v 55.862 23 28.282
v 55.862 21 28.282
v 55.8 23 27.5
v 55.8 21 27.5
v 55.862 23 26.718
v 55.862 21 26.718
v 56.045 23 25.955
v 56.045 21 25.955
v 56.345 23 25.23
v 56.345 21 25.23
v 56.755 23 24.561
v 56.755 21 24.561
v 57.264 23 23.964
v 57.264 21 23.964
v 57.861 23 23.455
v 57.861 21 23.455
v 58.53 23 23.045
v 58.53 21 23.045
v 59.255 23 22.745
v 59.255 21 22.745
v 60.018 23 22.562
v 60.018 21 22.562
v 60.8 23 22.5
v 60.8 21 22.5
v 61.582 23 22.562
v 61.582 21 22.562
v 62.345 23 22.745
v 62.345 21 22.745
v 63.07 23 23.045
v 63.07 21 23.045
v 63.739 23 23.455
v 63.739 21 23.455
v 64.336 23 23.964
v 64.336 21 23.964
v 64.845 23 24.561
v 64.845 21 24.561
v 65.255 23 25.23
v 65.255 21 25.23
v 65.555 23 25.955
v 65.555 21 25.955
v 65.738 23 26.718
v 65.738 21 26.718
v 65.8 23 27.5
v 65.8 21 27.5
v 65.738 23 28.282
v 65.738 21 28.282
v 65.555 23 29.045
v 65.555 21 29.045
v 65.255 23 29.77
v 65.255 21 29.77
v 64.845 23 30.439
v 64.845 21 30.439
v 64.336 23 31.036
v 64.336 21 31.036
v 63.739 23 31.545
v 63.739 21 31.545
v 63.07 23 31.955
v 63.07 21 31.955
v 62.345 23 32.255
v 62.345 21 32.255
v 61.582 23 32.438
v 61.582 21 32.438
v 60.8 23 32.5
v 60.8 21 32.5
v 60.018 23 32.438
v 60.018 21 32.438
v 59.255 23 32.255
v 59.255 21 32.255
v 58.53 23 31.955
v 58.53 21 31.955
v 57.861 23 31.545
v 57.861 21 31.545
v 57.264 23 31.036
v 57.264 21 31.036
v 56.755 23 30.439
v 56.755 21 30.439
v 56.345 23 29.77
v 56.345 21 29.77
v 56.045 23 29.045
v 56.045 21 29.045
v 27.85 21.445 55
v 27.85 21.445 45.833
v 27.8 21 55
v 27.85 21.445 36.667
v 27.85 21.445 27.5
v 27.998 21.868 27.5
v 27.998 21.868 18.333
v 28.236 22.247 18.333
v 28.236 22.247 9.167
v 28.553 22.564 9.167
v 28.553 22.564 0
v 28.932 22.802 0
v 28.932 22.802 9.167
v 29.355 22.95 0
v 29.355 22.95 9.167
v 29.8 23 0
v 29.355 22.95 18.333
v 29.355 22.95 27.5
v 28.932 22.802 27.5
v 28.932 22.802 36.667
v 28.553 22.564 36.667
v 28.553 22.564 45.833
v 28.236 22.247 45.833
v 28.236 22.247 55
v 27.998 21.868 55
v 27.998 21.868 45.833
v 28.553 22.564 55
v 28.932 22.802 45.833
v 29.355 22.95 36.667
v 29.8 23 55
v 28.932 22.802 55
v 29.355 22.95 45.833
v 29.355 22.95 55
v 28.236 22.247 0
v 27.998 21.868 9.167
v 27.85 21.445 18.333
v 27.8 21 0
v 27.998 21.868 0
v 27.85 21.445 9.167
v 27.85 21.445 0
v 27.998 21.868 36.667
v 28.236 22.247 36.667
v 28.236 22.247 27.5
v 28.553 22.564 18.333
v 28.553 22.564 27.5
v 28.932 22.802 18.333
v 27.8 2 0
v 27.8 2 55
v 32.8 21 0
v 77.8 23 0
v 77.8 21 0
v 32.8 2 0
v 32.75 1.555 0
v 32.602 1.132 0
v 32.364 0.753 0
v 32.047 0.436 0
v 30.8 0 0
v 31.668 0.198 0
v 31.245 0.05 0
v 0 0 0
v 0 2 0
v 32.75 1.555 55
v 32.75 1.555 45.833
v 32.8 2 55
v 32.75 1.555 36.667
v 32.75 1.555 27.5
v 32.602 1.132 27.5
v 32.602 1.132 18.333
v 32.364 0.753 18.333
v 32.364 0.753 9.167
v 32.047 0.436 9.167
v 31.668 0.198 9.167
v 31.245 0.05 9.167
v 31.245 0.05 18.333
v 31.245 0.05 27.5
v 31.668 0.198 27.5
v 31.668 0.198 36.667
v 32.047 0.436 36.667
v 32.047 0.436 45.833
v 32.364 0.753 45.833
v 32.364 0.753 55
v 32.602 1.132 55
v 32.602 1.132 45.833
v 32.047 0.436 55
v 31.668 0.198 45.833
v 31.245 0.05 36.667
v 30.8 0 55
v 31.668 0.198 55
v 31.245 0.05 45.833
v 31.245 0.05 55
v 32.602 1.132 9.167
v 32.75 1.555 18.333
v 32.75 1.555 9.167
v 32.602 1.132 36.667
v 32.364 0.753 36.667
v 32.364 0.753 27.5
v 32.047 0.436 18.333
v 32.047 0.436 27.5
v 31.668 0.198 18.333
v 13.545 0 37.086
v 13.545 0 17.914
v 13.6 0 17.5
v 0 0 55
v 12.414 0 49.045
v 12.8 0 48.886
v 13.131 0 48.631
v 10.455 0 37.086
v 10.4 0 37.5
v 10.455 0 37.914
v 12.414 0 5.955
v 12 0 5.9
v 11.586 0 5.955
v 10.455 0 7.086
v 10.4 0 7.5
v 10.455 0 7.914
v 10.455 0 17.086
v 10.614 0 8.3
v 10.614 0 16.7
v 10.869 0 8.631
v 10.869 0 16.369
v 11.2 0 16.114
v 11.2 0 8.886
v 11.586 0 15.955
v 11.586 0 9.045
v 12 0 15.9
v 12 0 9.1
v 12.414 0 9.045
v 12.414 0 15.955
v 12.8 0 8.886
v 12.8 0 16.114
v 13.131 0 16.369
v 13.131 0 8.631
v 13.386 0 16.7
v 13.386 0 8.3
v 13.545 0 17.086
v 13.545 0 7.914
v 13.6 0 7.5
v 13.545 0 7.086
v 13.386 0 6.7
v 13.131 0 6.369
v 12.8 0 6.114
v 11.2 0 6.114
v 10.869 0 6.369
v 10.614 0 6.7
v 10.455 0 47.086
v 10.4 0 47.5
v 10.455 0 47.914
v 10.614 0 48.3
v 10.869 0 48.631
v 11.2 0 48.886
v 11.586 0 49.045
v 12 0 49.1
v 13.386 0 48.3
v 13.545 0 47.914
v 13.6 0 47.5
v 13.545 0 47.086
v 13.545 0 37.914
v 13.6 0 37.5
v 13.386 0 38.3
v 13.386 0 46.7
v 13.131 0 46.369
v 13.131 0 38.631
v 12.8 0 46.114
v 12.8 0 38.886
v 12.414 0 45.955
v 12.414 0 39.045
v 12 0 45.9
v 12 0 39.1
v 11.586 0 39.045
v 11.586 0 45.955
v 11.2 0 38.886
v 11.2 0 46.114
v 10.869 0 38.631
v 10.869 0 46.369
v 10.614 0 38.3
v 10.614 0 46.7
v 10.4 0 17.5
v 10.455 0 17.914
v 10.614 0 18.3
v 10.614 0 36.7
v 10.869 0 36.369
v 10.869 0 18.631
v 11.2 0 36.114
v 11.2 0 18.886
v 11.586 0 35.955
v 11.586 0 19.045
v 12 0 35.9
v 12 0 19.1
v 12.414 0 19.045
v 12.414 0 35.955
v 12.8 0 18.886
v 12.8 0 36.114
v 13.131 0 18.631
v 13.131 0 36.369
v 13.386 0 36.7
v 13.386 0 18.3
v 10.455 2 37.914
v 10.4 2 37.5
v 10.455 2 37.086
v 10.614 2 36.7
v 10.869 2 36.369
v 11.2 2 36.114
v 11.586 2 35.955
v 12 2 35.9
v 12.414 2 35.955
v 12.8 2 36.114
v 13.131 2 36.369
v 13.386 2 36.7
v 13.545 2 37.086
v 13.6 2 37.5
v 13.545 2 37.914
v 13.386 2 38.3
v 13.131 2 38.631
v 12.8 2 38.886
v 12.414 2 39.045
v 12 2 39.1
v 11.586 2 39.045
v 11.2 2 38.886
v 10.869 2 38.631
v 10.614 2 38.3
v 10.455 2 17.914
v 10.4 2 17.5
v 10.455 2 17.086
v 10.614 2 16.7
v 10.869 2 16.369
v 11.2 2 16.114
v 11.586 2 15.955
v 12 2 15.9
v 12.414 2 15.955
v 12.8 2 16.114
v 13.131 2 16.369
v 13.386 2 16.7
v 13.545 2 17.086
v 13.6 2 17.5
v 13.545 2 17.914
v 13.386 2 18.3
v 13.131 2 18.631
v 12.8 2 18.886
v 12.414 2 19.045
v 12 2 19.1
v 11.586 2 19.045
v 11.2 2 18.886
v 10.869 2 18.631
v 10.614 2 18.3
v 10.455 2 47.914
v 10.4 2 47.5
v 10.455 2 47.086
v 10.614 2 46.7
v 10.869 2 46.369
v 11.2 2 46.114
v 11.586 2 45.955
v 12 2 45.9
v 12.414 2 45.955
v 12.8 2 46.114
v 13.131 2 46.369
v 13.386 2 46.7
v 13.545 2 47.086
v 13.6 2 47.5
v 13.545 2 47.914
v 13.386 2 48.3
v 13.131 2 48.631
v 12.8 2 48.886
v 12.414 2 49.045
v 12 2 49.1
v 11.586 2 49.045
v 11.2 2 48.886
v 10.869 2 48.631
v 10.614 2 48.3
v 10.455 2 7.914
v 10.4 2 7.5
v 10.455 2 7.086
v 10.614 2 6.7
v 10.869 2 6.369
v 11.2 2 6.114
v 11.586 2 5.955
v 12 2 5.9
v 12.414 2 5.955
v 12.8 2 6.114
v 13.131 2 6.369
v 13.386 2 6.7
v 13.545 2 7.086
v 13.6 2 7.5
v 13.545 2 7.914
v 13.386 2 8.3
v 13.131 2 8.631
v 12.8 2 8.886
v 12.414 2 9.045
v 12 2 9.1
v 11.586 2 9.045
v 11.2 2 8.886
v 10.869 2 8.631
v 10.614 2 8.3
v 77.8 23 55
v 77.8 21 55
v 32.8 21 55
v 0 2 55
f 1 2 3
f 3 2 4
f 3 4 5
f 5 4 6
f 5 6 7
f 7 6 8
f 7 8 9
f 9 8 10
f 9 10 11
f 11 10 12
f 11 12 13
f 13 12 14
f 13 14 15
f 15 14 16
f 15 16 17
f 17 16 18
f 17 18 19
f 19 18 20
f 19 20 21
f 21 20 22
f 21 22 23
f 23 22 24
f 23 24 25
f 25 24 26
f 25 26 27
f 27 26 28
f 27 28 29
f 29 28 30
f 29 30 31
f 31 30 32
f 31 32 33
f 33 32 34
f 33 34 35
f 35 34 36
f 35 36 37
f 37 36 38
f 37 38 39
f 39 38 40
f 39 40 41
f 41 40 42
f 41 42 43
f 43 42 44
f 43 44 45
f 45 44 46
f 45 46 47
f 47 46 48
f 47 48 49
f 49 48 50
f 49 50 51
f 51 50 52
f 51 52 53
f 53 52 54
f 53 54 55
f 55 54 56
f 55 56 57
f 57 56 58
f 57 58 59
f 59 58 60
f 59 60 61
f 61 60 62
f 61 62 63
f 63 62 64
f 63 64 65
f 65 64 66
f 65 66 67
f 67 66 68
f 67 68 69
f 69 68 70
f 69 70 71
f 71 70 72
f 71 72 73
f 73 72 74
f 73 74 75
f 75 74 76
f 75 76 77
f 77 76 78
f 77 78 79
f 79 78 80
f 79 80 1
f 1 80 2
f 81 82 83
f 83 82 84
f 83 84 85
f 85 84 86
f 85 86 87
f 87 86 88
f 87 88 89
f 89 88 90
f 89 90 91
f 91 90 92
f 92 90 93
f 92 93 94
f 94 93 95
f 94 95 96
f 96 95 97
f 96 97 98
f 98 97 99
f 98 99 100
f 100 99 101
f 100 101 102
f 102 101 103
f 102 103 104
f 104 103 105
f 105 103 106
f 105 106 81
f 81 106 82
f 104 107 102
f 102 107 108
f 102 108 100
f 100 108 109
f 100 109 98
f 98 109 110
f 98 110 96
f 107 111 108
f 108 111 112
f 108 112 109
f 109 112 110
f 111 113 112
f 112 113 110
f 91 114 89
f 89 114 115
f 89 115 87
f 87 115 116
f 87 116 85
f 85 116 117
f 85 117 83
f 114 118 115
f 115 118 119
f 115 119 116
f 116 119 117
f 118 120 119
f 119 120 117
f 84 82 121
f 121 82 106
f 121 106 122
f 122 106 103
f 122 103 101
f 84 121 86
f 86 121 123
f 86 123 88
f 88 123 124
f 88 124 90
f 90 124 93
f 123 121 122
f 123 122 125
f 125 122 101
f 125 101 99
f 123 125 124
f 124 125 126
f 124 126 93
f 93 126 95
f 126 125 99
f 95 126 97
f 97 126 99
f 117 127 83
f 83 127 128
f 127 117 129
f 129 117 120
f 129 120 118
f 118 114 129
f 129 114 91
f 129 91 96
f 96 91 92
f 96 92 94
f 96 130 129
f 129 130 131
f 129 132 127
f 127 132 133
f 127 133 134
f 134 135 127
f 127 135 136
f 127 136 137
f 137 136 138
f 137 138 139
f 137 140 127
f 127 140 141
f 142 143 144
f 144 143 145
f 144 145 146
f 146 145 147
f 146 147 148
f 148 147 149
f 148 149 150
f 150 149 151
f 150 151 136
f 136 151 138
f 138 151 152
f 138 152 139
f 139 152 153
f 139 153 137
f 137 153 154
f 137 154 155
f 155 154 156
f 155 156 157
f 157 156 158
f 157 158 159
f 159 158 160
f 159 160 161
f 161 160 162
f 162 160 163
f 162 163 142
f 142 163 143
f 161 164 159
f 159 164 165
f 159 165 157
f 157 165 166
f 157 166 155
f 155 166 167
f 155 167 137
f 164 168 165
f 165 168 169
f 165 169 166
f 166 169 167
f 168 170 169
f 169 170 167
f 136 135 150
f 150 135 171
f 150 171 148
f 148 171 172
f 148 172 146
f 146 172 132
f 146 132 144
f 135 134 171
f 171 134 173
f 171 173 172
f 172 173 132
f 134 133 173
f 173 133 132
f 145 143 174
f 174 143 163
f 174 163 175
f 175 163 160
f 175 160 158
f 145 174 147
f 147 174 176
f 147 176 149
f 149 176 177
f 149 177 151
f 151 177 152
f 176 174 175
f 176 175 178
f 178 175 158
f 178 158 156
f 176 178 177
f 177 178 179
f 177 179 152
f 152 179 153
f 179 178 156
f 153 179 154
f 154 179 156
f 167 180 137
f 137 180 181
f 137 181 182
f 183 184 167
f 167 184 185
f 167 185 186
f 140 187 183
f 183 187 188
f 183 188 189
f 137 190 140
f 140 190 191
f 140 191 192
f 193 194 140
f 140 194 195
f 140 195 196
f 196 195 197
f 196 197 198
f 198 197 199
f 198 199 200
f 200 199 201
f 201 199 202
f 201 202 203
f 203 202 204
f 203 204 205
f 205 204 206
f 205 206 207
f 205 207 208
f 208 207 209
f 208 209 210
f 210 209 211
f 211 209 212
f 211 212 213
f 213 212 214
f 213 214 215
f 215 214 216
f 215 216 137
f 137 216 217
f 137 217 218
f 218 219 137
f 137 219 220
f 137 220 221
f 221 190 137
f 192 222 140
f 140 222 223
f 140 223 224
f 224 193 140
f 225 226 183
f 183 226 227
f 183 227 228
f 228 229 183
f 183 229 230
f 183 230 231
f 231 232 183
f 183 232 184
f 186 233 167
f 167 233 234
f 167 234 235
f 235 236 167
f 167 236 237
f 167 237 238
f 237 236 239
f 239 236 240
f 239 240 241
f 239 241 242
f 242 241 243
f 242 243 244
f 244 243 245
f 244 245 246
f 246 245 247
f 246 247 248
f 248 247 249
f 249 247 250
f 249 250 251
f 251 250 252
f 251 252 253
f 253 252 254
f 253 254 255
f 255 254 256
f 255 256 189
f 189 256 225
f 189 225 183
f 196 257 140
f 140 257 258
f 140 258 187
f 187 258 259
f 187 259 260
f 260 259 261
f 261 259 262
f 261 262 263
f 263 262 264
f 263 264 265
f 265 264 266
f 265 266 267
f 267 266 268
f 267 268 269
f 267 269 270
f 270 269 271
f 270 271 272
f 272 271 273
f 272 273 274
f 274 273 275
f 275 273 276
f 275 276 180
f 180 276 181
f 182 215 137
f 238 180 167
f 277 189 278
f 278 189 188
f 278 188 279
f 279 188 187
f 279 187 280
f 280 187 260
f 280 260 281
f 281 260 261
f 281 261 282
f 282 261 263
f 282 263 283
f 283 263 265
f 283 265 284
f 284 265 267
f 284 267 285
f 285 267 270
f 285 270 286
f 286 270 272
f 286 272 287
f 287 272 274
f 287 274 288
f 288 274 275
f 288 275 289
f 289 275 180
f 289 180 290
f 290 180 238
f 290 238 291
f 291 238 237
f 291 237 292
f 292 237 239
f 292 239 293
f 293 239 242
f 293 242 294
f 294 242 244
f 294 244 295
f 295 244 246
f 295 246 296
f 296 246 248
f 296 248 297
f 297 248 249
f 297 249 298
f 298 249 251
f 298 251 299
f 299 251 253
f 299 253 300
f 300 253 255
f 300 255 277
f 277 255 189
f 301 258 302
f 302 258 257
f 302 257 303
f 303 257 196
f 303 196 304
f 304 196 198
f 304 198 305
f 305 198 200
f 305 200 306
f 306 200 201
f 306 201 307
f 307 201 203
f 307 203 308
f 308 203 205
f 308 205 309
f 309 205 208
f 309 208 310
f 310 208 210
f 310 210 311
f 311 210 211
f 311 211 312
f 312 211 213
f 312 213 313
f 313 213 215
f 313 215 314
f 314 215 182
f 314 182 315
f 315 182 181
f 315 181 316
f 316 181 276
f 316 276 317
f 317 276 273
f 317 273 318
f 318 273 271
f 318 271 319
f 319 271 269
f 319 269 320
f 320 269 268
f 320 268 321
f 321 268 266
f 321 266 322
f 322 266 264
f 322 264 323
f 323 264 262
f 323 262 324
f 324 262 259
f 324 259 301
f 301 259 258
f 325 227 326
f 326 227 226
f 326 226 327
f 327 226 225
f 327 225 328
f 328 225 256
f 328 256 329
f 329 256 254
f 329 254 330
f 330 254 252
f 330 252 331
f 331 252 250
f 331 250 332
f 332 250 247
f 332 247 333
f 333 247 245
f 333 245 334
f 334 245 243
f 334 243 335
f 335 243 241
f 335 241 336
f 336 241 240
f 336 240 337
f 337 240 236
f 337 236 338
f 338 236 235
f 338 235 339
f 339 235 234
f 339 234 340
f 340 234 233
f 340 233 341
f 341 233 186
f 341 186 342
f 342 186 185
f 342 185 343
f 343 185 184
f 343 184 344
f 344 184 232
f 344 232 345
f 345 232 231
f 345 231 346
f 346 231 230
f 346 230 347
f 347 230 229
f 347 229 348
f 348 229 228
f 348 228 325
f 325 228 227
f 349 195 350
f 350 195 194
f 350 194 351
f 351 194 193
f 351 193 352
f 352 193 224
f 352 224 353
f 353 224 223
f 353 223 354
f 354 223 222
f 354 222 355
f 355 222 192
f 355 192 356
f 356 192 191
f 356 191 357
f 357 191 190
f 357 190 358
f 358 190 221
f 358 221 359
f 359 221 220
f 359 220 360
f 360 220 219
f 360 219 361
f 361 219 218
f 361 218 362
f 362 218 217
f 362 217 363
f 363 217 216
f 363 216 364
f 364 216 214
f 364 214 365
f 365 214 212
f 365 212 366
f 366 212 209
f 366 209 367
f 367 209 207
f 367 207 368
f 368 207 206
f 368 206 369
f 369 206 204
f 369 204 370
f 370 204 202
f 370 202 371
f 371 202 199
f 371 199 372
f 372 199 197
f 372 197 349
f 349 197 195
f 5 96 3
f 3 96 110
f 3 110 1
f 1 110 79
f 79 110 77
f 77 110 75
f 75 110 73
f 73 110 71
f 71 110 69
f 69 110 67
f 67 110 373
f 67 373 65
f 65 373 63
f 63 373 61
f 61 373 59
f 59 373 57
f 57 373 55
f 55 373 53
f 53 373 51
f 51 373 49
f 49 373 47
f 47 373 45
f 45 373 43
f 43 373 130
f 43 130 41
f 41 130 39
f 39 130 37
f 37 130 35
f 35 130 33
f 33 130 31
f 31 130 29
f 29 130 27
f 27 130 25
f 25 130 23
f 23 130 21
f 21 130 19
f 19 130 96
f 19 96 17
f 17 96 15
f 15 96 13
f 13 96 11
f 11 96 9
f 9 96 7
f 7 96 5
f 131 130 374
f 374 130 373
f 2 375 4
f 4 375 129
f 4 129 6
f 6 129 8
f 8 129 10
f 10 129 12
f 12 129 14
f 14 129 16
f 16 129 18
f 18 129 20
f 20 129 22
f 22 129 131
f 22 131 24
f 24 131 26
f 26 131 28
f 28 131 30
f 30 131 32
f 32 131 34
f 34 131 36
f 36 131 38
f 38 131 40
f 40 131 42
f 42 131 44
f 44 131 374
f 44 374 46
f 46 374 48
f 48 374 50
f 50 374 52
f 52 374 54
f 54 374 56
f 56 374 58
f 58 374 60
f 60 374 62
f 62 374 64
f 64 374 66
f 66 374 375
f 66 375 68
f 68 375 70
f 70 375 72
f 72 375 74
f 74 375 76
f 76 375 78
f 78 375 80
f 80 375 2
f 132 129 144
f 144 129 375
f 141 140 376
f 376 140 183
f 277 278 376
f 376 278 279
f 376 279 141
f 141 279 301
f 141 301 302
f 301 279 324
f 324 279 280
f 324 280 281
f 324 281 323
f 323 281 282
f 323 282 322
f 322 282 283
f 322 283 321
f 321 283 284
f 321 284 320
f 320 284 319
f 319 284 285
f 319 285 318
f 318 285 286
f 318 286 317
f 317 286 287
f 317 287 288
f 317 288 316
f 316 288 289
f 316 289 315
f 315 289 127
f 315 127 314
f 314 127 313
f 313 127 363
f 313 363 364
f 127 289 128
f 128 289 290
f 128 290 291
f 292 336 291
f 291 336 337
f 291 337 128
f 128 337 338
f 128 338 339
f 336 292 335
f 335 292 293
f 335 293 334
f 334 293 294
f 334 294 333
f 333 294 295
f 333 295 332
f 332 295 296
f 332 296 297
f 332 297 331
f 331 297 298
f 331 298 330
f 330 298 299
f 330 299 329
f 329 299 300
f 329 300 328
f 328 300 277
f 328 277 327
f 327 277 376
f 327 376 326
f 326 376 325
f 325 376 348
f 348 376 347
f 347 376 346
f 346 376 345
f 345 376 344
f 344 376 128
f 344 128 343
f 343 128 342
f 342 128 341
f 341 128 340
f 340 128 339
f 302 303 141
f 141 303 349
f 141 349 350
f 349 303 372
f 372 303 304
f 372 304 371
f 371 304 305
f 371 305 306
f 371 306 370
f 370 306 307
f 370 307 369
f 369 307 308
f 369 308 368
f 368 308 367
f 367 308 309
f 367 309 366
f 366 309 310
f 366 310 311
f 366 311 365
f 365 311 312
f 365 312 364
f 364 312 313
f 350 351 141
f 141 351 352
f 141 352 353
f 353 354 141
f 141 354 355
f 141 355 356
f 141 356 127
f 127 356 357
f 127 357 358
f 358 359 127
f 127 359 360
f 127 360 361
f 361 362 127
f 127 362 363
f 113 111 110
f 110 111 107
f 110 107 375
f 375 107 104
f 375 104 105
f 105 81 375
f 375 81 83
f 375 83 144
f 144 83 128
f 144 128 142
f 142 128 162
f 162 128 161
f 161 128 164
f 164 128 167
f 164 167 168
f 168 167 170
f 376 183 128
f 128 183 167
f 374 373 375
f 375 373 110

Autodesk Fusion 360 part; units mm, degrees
sketch "Sketch1" plane through (0, 0, 0) normal (0, 0, 1) x (1, 0, 0)
  line L0 (0, 0) -> (32.8, 0)
  line L1 (32.8, 0) -> (32.8, 2)
  line L2 (32.8, 2) -> (0, 2)
  line L3 (0, 2) -> (0, 0)
  line L4 (32.8, 0) -> (27.8, 0)
  line L5 (27.8, 0) -> (27.8, 23)
  line L6 (27.8, 23) -> (32.8, 23)
  line L7 (32.8, 23) -> (32.8, 0)
  line L8 (27.8, 23) -> (77.8, 23)
  line L9 (77.8, 23) -> (77.8, 21)
  line L10 (77.8, 21) -> (27.8, 21)
  line L11 (27.8, 21) -> (27.8, 23)
  dimension "d1" = 32.8
  dimension "d2" = 2
  dimension "d3" = 5
  dimension "d4" = 23
  dimension "d5" = 50
  dimension "d6" = 2
extrude "Extrude1" add sketch "Sketch1" along normal blind 55
sketch "Sketch2" plane through (0, 0, 0) normal (0, -1, 0) x (1, 0, 0)
  line L0 (0, 0) -> (32.8, 0)
  line L1 (32.8, 0) -> (32.8, 55)
  line L2 (32.8, 55) -> (0, 55)
  line L3 (0, 55) -> (0, 0)
  line L4 (12, 55) -> (12, 0) construction
  line L5 (0, 27.5) -> (32.8, 27.5) construction
  circle A0 centre (12, 47.5) radius 1.6
  circle A1 centre (12, 37.5) radius 1.6
  circle A2 centre (12, 17.5) radius 1.6
  circle A3 centre (12, 7.5) radius 1.6
  dimension "d10" = 3.2
  dimension "d11" = 3.2
  dimension "d12" = 3.2
  dimension "d13" = 3.2
  dimension "d14" = 10
  dimension "d15" = 10
  dimension "d17" = 10
  dimension "d19" = 10
  dimension "d30" = 12
extrude "Extrude2" cut sketch "Sketch2" against normal blind 25 contours A0 | A1 | A2 | A3
fillet "Fillet1" radius 2 1 edges at (32.8, 0, 27.5)
fillet "Fillet2" radius 2 1 edges at (27.8, 23, 27.5)
sketch "Sketch3" plane through (0, 21, 0) normal (0, -1, 0) x (1, 0, 0)
  line L0 (32.8, 0) -> (77.8, 0)
  line L1 (77.8, 0) -> (77.8, 55)
  line L2 (77.8, 55) -> (32.8, 55)
  line L3 (32.8, 55) -> (32.8, 0)
  line L4 (60.8, 55) -> (60.8, 0) construction
  line L5 (77.8, 27.5) -> (32.8, 27.5) construction
  circle A0 centre (60.8, 27.5) radius 5
  dimension "d26" = 28
  dimension "d27" = 10
extrude "Extrude3" cut sketch "Sketch3" against normal blind 15 contours A0
equation "bodyScrew = 3.2 mm"
equation "d10 = bodyScrew"
equation "d11 = bodyScrew"
equation "d12 = bodyScrew"
equation "d13 = bodyScrew"
